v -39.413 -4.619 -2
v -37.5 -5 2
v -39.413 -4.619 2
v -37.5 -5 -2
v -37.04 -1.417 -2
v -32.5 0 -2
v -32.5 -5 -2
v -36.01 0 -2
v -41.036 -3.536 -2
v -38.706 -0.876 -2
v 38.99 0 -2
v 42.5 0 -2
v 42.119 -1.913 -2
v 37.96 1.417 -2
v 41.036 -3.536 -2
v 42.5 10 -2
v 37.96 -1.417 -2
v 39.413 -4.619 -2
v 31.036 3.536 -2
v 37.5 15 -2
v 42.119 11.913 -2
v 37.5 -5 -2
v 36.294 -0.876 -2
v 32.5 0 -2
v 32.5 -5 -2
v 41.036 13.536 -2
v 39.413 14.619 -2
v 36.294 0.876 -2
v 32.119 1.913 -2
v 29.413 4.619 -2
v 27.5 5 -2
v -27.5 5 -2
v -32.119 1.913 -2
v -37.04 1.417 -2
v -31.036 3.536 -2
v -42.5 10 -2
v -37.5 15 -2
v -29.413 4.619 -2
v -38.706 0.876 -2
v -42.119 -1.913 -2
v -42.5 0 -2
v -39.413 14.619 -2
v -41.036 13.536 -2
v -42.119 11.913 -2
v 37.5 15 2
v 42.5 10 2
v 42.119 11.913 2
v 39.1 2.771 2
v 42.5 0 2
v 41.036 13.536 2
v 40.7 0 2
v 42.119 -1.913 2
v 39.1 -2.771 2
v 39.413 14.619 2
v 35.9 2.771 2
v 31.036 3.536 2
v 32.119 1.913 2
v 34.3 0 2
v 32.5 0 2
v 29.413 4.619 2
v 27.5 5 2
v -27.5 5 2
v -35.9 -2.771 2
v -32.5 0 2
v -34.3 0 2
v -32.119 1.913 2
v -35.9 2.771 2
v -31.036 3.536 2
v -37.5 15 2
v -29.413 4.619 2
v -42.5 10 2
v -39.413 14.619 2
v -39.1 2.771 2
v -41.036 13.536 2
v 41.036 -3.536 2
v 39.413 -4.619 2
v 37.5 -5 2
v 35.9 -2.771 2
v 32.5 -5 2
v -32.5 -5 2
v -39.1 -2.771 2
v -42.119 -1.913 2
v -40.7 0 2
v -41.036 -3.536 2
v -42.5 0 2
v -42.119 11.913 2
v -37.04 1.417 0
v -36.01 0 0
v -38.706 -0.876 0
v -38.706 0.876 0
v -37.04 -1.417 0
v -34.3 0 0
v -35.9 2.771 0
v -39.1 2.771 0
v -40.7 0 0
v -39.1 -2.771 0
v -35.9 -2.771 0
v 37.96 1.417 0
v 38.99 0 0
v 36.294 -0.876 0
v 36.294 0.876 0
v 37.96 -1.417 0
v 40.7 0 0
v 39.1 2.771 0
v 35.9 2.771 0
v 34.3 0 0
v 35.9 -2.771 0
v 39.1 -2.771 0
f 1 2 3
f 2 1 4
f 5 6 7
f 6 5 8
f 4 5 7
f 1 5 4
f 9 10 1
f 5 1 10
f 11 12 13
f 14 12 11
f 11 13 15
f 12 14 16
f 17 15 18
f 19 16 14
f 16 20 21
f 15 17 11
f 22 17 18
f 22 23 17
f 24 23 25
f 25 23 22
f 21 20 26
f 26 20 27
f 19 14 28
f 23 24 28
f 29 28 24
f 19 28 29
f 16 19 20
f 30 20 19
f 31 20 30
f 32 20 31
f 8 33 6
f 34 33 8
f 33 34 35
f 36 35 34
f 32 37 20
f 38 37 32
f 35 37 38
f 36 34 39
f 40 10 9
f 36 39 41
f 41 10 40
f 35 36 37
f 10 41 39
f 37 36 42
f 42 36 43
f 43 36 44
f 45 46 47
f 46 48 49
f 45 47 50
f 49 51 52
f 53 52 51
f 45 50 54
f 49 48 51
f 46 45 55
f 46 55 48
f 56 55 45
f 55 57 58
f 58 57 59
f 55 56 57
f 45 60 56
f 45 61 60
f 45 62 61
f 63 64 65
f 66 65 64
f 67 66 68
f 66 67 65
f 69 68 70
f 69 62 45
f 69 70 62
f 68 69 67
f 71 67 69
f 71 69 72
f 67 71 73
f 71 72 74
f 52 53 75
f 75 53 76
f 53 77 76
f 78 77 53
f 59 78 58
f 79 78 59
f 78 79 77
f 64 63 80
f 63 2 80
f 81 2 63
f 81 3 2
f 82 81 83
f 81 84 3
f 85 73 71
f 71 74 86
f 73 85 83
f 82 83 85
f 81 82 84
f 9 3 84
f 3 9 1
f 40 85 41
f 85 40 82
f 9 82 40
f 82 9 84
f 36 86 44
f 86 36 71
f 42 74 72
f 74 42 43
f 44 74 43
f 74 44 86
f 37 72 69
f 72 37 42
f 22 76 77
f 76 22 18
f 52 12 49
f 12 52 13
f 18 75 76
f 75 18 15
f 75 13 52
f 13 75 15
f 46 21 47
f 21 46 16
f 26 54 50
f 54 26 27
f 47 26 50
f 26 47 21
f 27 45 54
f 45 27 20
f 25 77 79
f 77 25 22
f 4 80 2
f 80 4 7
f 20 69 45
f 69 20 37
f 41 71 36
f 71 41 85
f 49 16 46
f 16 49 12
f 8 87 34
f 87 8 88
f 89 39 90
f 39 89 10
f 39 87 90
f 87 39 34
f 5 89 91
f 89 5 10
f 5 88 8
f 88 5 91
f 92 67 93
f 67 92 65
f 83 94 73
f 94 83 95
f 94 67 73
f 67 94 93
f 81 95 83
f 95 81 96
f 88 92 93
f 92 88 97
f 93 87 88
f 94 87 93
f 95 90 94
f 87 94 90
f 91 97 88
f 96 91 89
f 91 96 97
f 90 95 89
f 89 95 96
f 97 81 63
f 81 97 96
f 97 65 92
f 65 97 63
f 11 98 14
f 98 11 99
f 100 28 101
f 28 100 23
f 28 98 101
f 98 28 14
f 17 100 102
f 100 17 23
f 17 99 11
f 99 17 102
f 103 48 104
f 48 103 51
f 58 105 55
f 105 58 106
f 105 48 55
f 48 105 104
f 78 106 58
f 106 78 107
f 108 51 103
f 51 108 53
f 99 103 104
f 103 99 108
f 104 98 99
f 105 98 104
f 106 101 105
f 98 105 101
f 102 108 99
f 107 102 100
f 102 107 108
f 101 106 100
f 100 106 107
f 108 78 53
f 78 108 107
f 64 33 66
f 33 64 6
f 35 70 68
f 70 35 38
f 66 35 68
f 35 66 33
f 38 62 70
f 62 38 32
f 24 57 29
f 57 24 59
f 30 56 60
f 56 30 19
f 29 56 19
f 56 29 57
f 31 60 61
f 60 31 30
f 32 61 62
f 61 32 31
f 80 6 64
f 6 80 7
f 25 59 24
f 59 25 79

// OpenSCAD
include <MCAD/nuts_and_bolts.scad>;
include <MCAD/boxes.scad>;

holes = 75;
width = 10;
thick = 4;
bolt_size = 3;

difference() {
    translate([0, width/2, 0]) roundedBox([holes+width, width*2, thick], width/2, true);
    // Bolt and nut holes
    for (i = [-holes/2, holes/2]) {
        translate([i, 0, 0]) {
            translate([0, 0, -thick]) boltHole(bolt_size, length=thick*2);
            nutHole(bolt_size);
        }
    }
    translate([0, -width/2, 0]) roundedBox([holes-width, width*2, thick], width/2, true);
}
